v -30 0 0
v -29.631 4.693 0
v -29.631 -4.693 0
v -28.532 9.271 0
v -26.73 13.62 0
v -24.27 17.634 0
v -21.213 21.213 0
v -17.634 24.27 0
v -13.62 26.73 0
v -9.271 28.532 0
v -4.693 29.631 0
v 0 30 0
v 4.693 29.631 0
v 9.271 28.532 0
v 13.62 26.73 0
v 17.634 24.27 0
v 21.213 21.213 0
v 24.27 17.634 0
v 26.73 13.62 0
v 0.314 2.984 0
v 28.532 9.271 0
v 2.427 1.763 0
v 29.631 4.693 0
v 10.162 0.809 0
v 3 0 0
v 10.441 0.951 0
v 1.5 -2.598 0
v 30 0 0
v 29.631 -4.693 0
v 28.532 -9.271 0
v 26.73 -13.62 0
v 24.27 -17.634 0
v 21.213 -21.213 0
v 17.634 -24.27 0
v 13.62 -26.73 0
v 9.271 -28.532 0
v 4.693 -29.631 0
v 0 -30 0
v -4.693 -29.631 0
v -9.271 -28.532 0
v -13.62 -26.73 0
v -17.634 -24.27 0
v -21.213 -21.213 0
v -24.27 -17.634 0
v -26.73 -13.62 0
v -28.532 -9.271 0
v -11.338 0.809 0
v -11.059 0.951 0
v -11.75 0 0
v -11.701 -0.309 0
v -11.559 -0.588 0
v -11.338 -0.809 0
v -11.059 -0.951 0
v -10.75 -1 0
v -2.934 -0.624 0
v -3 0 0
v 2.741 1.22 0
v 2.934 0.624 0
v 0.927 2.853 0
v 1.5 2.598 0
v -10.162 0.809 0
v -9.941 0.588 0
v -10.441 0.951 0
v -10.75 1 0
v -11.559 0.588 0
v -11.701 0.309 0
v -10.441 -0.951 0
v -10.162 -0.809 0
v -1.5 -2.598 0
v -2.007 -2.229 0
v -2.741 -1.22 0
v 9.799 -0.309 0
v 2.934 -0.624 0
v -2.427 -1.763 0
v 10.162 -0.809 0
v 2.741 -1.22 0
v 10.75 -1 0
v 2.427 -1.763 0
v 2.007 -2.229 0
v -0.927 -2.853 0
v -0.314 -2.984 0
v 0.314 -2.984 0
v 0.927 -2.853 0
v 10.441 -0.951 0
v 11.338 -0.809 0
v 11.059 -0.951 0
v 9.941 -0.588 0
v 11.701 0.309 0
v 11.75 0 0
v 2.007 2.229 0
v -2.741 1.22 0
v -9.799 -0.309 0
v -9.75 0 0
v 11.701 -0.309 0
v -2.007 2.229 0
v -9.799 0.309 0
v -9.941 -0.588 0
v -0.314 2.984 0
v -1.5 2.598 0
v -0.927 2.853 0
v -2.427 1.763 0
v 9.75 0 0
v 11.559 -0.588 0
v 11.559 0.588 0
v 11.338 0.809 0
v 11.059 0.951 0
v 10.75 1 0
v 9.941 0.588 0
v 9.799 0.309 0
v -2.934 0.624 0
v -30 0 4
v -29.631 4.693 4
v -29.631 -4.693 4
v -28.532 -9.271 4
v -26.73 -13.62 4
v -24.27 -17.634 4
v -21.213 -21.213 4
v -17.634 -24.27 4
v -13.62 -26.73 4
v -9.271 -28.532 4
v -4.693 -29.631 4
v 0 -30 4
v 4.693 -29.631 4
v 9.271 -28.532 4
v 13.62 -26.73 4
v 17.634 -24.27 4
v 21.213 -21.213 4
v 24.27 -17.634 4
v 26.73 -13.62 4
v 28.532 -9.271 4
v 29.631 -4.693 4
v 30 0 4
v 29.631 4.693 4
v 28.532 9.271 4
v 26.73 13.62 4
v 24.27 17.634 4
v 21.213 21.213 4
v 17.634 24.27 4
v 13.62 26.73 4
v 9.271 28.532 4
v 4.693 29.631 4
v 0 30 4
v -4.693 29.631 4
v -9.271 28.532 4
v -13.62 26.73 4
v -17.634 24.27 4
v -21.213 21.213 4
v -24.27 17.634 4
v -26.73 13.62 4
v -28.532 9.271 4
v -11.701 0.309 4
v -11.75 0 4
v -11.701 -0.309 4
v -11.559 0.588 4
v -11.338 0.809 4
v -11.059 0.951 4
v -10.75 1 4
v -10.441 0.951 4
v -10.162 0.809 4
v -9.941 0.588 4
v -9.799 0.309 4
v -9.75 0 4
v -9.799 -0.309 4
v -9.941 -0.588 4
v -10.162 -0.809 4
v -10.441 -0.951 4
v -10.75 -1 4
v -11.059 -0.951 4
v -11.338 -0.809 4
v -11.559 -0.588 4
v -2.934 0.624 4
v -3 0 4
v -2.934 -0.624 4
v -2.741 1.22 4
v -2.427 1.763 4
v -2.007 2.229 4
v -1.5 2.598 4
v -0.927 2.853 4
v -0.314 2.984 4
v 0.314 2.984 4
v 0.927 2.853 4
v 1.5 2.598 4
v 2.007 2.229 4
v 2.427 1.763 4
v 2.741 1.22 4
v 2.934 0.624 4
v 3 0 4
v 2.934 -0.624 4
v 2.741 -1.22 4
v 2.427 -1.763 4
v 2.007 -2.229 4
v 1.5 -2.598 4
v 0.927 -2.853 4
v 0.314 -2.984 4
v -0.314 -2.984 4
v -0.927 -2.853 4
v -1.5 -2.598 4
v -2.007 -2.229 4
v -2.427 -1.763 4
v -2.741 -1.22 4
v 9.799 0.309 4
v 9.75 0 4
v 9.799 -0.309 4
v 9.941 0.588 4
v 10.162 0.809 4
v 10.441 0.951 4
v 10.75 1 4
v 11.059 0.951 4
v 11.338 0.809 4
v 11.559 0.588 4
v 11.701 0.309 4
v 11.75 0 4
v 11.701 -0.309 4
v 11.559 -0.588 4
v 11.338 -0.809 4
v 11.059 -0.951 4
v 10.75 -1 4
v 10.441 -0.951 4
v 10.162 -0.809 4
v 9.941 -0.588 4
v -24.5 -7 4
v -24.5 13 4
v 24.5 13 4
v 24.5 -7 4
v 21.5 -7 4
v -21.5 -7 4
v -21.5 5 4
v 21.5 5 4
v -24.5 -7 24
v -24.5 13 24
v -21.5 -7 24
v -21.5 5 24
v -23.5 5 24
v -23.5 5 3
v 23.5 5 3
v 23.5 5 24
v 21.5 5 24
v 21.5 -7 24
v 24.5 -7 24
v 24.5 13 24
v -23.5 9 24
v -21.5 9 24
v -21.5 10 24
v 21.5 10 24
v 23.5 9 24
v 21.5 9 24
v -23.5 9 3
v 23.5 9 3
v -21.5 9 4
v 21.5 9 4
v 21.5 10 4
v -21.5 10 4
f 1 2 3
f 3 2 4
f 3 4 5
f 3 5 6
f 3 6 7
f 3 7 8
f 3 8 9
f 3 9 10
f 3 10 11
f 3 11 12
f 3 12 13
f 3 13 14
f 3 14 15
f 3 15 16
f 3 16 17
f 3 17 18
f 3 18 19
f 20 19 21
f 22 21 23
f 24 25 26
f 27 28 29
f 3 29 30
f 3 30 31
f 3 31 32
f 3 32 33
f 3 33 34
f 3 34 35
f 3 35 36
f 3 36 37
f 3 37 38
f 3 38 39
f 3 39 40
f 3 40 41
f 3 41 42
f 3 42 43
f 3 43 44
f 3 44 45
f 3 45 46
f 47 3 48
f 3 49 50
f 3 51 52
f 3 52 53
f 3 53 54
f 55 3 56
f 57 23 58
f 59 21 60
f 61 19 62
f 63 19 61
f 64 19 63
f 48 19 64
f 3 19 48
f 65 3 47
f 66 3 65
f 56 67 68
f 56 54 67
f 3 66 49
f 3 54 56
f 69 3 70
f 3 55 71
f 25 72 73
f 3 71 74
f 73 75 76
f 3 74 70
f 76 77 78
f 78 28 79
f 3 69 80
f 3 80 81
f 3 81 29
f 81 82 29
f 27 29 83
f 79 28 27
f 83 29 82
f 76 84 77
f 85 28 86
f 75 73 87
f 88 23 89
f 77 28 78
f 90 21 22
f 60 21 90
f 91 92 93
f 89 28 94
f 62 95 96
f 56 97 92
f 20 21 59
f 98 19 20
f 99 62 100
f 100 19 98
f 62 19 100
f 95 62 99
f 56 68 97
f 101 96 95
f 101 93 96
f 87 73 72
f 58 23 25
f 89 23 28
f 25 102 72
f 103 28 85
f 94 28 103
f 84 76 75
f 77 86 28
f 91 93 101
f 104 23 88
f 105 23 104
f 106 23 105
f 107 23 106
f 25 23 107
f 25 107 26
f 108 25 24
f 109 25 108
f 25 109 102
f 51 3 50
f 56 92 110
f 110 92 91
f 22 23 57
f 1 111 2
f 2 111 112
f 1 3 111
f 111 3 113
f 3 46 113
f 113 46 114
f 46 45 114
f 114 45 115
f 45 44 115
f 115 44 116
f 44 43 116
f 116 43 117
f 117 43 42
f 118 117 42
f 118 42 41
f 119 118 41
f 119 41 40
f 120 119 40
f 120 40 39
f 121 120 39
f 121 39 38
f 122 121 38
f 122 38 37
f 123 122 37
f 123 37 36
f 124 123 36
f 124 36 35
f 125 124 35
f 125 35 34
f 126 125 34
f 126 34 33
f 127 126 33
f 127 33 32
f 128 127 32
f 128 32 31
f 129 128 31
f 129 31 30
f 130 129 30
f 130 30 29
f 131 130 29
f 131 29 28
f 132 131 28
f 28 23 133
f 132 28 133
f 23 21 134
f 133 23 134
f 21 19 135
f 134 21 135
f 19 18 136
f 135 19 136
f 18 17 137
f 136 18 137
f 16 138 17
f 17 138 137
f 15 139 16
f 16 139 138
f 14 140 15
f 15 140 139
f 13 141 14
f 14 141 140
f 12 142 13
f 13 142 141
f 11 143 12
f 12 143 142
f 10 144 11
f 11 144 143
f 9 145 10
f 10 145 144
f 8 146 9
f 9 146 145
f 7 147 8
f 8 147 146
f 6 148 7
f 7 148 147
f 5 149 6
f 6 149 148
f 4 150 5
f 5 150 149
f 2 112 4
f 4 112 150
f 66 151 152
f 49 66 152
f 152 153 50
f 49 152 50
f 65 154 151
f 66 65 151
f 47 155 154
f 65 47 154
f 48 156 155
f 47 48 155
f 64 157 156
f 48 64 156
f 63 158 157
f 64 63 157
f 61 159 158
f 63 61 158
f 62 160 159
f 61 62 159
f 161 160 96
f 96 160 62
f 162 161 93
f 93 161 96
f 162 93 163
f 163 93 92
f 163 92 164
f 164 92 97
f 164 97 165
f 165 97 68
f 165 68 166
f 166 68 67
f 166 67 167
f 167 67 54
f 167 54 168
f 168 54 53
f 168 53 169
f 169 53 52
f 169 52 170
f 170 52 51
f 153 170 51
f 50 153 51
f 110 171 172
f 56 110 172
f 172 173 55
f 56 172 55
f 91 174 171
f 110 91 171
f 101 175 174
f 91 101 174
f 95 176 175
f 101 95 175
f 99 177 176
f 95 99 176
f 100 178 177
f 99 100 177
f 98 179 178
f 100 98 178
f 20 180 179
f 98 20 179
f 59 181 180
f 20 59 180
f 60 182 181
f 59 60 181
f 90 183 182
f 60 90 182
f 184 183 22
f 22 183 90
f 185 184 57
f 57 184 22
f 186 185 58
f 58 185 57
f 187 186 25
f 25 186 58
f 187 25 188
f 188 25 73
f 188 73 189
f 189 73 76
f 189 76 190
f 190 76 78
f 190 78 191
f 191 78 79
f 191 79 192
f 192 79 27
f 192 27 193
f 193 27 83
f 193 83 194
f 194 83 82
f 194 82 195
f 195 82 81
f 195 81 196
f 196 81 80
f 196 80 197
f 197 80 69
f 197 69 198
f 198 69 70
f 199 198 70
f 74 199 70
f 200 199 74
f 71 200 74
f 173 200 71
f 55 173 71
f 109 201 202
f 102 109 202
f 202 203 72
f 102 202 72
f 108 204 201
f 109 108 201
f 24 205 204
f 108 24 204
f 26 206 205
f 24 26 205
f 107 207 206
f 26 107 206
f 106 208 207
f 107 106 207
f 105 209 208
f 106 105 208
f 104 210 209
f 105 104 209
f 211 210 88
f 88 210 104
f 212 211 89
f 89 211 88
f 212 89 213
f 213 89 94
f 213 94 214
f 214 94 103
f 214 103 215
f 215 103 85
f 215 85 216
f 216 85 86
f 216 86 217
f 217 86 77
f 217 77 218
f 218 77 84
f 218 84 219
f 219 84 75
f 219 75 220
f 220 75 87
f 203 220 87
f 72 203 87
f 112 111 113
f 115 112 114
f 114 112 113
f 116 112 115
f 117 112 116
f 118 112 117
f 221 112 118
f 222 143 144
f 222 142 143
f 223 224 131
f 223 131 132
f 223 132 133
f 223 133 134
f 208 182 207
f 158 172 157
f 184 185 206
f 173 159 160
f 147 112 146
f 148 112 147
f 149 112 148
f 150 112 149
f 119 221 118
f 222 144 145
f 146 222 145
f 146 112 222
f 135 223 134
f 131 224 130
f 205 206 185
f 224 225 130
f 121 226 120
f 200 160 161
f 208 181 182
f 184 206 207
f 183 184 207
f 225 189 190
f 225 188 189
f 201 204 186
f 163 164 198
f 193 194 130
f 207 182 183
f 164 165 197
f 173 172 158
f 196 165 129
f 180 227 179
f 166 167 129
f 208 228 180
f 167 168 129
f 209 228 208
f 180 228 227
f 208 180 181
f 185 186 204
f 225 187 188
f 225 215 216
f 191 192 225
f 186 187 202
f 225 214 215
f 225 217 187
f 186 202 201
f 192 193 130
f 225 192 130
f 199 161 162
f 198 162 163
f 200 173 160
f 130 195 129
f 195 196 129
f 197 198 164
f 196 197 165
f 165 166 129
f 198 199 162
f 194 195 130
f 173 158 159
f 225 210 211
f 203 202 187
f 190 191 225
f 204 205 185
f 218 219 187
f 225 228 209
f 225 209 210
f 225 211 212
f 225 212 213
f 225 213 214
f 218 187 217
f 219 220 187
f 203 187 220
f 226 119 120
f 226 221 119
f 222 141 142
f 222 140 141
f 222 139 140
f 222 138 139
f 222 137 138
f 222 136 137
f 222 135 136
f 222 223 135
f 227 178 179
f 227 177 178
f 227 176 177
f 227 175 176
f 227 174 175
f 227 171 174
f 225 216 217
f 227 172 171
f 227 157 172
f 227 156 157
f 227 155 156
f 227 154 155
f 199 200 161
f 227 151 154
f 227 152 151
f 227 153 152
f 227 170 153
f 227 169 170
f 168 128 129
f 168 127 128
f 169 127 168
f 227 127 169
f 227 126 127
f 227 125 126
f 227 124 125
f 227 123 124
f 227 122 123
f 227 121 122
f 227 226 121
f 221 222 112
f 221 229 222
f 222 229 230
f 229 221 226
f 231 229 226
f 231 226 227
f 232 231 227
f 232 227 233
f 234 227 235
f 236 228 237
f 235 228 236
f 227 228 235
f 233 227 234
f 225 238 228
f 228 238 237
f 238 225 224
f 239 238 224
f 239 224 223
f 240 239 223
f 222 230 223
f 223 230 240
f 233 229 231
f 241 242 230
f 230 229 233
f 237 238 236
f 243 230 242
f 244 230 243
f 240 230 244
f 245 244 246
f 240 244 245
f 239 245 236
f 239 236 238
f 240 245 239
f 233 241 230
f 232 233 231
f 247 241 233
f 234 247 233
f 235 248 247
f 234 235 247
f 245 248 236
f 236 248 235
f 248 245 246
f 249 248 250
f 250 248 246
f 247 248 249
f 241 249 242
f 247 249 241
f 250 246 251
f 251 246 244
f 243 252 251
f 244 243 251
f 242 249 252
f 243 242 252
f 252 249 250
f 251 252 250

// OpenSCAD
module UltraSoundRadome() {
  radarheight=20;
  radarwidth=45;

  basewidth=4;
  wallwidth=3;

  difference() {
    union() {
      cylinder($fn=40,r=30,h=basewidth);
 
      translate([0,10+wallwidth/2,radarheight/2+basewidth])
      cube([radarwidth,3,radarheight],center=true);

      translate([radarwidth/2+wallwidth/2-1,wallwidth,radarheight/2+basewidth])
      cube([3,20,radarheight],center=true);

      translate([-radarwidth/2-wallwidth/2+1,wallwidth,radarheight/2+basewidth])
      cube([3,20,radarheight],center=true);
    }
    union() {

      translate([0,7,radarheight/2+basewidth])
      cube([radarwidth+2,4,radarheight+2],center=true);

      cylinder($fn=30,r=3,h=10,center=true);

      translate([-10.75,0,0])
      cylinder($fn=20,r=1,h=10,center=true);

      translate([10.75,0,0])
      cylinder($fn=20,r=1,h=10,center=true);
  }
 }
}

UltraSoundRadome();
